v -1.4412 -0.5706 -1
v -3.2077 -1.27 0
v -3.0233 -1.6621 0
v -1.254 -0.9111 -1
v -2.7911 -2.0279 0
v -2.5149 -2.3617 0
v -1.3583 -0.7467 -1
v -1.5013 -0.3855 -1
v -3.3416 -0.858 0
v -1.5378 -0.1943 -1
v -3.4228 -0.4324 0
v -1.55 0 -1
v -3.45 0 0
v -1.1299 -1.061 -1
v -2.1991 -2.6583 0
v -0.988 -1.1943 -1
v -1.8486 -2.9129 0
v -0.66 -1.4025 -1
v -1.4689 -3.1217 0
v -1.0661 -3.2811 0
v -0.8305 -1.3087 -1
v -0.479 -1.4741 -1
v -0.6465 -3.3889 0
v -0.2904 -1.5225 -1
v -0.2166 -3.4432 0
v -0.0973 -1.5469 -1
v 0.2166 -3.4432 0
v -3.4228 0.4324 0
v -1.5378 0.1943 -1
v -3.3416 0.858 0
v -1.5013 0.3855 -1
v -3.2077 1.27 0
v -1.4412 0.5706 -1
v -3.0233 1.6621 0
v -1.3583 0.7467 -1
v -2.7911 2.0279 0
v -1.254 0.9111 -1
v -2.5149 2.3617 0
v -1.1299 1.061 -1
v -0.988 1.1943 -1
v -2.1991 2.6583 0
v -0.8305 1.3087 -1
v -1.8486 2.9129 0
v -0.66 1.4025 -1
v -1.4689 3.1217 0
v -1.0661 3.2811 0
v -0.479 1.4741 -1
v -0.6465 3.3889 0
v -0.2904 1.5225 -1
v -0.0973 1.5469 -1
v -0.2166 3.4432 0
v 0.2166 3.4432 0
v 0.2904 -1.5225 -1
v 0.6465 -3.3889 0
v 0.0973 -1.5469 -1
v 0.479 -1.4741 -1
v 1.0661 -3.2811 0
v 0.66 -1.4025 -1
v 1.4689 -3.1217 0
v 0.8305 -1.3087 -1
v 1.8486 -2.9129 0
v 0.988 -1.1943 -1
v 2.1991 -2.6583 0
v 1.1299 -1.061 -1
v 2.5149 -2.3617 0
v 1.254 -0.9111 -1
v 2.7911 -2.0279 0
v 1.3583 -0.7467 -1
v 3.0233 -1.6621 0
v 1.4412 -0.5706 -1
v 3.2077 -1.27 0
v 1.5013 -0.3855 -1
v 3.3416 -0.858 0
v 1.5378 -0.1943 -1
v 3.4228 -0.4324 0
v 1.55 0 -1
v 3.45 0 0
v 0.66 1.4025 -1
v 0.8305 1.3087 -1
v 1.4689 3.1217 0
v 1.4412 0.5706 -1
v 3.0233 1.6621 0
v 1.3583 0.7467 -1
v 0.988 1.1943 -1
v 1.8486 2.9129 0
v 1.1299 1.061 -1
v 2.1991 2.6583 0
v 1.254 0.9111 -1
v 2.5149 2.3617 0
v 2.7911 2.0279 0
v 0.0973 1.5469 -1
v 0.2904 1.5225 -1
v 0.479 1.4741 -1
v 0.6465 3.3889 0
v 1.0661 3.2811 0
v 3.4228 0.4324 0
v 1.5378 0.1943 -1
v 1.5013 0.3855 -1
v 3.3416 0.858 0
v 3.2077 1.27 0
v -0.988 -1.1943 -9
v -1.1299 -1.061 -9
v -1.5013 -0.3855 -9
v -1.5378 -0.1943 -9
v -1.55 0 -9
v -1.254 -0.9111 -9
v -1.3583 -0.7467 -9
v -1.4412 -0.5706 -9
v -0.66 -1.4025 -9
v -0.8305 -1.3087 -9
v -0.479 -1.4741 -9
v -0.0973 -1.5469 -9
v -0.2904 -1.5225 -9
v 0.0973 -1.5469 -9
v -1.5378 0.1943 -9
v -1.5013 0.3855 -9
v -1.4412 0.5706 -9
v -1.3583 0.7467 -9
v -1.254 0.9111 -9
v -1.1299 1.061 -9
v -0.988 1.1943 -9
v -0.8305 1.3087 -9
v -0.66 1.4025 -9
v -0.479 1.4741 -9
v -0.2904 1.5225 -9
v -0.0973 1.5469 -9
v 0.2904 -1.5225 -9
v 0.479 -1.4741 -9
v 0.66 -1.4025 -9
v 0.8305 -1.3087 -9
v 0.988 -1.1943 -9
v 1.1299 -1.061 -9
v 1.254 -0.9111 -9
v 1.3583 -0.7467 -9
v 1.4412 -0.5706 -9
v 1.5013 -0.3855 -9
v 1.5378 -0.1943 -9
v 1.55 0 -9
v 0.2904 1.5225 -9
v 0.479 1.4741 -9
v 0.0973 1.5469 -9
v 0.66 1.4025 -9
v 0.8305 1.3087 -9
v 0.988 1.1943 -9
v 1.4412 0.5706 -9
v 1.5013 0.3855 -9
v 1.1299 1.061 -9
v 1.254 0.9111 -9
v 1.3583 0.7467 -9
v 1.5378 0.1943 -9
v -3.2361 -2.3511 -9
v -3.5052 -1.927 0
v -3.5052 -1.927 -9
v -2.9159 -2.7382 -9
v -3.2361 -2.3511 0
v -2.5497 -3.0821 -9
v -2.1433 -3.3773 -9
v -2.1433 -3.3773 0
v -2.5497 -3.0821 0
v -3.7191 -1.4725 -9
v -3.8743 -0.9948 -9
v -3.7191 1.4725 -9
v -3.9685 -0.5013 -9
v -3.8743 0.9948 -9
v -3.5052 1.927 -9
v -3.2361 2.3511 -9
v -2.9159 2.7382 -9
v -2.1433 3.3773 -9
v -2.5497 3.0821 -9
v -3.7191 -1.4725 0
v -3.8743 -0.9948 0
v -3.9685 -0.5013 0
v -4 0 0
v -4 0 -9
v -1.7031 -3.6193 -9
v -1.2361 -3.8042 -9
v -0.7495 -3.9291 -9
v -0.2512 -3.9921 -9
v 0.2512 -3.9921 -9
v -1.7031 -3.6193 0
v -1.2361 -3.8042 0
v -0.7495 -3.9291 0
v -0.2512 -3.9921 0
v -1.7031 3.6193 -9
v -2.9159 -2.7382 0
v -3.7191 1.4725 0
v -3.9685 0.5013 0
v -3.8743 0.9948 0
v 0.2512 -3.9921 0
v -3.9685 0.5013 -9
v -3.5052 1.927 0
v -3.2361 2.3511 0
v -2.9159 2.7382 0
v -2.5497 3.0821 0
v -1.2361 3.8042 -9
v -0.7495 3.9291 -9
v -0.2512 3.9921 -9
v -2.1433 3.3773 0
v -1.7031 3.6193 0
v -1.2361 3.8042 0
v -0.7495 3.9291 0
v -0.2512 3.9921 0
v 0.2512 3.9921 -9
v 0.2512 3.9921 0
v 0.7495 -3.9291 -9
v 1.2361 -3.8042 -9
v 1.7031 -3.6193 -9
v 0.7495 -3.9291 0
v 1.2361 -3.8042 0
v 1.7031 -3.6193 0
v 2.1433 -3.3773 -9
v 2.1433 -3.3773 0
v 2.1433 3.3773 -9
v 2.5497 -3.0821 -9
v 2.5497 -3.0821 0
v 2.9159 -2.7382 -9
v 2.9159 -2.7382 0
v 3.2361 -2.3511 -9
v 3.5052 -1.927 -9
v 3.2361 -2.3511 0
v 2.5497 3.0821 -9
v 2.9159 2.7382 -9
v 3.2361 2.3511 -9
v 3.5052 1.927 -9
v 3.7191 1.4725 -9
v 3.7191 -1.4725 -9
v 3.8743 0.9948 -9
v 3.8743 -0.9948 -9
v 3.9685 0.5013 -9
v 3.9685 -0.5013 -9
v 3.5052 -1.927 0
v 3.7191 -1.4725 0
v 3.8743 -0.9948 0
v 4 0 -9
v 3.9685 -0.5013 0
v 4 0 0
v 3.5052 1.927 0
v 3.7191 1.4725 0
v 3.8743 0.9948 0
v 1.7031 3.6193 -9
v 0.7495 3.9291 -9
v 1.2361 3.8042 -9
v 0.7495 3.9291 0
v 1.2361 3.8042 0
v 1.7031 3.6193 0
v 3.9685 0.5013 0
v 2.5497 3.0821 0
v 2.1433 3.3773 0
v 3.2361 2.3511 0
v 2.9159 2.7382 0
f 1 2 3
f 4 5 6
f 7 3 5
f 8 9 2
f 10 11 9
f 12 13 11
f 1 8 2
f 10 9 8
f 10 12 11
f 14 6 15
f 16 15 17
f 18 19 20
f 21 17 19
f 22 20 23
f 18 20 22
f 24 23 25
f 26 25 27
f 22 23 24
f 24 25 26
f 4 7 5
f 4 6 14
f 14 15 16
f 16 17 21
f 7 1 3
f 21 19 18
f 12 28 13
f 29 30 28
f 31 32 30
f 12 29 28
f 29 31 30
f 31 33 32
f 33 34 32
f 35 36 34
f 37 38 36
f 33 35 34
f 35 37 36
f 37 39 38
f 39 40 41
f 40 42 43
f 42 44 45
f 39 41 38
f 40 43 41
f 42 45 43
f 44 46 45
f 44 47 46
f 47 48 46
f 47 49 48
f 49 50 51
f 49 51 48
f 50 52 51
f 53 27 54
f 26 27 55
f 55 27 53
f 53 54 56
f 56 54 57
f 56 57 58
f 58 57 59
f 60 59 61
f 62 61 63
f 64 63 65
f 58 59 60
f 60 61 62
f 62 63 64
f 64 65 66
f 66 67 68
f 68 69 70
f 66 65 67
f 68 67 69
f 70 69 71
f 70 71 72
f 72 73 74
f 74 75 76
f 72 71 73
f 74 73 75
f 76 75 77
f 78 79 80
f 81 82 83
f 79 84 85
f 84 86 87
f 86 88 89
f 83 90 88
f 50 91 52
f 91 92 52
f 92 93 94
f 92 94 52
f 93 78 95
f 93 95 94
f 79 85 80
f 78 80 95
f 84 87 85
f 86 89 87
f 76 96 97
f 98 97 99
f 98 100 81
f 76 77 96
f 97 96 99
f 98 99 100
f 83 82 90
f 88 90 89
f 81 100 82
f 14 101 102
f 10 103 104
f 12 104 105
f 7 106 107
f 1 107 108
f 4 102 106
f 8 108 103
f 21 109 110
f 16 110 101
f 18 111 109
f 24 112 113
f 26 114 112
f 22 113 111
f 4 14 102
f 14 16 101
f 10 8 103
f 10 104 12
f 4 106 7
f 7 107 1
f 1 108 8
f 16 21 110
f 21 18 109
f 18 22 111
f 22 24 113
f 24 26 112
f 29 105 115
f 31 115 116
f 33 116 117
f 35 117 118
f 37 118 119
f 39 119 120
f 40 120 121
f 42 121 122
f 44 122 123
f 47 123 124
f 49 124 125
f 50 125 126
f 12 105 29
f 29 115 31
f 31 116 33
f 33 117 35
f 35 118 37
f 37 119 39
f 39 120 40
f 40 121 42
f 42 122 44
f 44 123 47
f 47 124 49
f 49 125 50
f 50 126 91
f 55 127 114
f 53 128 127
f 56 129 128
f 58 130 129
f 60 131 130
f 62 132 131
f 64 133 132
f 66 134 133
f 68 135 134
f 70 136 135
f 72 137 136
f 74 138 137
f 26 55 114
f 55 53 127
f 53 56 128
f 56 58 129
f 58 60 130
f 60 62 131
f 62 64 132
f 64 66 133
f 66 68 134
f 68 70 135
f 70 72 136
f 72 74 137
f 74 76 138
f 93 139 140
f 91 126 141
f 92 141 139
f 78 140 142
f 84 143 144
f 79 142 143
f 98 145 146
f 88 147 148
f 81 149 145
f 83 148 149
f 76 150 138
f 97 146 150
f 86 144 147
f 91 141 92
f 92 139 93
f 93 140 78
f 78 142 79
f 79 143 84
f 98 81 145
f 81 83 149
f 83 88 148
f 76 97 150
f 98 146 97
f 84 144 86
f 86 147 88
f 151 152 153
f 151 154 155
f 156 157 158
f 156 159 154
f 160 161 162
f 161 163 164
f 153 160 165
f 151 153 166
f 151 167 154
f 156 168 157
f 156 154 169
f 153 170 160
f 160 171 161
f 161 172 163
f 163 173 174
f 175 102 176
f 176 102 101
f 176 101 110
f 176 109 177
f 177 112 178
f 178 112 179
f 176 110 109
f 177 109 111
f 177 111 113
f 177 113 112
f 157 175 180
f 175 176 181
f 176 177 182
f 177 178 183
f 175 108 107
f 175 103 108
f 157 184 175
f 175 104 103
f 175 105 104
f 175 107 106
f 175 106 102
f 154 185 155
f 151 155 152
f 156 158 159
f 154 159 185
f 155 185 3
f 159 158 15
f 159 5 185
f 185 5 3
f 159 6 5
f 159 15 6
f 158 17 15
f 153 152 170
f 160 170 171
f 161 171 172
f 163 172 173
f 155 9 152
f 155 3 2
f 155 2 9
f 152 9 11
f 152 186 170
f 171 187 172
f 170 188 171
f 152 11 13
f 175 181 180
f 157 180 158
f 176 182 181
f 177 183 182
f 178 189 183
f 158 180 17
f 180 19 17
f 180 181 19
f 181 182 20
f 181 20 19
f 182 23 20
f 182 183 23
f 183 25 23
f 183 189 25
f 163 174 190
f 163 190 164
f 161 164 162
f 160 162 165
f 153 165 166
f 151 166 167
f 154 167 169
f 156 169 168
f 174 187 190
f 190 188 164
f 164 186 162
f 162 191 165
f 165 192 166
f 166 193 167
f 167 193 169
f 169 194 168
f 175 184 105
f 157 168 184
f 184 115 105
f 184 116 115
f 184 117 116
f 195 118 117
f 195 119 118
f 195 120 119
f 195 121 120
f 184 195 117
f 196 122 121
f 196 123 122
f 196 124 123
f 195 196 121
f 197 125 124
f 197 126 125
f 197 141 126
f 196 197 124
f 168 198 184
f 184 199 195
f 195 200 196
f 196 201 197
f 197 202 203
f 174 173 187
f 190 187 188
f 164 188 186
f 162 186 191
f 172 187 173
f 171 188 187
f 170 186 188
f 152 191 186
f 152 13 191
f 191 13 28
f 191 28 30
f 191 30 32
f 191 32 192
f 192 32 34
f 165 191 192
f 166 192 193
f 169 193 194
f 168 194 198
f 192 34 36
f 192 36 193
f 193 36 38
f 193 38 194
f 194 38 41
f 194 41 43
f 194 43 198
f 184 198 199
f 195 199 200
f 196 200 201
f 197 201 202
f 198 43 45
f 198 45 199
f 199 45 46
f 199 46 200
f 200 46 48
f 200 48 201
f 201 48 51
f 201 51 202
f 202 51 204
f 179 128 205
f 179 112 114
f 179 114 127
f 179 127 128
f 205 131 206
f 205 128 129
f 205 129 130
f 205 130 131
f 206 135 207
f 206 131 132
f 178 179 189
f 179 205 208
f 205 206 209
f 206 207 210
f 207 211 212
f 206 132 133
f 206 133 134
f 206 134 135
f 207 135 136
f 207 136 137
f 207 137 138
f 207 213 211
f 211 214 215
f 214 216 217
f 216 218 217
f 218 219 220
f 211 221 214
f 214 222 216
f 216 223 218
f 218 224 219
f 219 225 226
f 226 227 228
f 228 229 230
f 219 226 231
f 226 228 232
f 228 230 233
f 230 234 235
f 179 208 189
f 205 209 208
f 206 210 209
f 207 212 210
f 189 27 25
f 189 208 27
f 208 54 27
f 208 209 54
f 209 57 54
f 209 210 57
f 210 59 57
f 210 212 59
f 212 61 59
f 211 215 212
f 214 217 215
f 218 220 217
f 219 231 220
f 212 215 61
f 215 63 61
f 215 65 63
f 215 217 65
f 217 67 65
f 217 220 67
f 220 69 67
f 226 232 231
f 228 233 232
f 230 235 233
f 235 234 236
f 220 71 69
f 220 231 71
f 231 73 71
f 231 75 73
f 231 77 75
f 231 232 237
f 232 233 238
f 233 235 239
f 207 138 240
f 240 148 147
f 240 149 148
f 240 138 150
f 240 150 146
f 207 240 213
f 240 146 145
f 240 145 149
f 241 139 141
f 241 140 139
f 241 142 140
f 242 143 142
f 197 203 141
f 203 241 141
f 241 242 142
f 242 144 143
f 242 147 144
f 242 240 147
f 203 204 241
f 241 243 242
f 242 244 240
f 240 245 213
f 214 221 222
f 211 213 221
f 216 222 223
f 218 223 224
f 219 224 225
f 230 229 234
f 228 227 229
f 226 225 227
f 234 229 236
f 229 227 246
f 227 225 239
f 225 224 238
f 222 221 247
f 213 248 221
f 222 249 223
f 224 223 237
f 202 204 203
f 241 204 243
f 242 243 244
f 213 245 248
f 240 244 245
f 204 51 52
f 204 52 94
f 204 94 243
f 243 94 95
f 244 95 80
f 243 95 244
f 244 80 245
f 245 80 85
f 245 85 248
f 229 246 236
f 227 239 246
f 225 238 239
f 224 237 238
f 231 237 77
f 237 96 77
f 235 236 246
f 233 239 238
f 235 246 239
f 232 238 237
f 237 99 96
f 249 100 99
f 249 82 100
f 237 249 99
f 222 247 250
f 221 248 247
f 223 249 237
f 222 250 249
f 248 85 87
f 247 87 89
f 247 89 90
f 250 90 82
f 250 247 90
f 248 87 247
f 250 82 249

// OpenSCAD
$fn = 50;

difference() {
	union() {
		translate(v = [0, 0, -9.0]) {
			cylinder(h = 9, r = 4.0);
		}
	}
	union() {
		translate(v = [0, 0, 0]) {
			rotate(a = [0, 0, 0]) {
				difference() {
					union() {
						translate(v = [0, 0, -12.0]) {
							cylinder(h = 12, r = 1.25);
						}
						translate(v = [0, 0, -1.0]) {
							cylinder(h = 1.0, r1 = 1.55, r2 = 3.45);
						}
						translate(v = [0, 0, -12.0]) {
							cylinder(h = 12, r = 1.55);
						}
						translate(v = [0, 0, -12.0]) {
							cylinder(h = 12, r = 1.25);
						}
					}
					union();
				}
			}
		}
	}
}
